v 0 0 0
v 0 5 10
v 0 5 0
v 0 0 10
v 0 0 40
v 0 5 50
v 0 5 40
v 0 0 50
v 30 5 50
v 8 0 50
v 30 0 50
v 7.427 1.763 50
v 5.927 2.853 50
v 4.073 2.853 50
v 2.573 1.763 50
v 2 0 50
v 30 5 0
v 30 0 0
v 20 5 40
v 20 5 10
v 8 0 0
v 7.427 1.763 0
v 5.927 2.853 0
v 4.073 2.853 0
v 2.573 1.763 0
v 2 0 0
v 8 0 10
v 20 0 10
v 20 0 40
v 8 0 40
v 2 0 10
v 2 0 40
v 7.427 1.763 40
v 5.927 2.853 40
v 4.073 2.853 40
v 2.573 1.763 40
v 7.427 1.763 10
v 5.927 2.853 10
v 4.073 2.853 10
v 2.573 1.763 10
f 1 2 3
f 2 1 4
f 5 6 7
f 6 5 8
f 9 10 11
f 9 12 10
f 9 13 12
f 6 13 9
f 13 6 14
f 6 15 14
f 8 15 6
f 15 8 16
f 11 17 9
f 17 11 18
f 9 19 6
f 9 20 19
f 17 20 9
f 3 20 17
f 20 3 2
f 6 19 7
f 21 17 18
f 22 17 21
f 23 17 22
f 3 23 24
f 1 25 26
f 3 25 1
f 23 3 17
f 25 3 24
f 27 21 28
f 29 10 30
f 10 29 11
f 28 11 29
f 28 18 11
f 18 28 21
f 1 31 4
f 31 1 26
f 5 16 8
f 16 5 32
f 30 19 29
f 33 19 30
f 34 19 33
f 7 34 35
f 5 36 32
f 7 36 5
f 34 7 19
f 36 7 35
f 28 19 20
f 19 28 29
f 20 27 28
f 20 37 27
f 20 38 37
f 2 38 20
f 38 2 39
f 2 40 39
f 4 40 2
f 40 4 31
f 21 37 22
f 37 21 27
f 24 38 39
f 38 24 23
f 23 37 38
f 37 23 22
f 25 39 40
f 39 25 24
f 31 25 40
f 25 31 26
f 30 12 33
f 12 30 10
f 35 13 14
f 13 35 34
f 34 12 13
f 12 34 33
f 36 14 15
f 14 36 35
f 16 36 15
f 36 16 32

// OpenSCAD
module ubracket(){
    difference(){
    cube([30,5,50]);
    
    
    translate([-25,4, 25])cube([90,10,30],center=true);
}}



difference(){
ubracket();

{
translate([5, 0,-1]) cylinder(12,d = 6);
translate([5, 0,39]) cylinder(12,d = 6);}}
